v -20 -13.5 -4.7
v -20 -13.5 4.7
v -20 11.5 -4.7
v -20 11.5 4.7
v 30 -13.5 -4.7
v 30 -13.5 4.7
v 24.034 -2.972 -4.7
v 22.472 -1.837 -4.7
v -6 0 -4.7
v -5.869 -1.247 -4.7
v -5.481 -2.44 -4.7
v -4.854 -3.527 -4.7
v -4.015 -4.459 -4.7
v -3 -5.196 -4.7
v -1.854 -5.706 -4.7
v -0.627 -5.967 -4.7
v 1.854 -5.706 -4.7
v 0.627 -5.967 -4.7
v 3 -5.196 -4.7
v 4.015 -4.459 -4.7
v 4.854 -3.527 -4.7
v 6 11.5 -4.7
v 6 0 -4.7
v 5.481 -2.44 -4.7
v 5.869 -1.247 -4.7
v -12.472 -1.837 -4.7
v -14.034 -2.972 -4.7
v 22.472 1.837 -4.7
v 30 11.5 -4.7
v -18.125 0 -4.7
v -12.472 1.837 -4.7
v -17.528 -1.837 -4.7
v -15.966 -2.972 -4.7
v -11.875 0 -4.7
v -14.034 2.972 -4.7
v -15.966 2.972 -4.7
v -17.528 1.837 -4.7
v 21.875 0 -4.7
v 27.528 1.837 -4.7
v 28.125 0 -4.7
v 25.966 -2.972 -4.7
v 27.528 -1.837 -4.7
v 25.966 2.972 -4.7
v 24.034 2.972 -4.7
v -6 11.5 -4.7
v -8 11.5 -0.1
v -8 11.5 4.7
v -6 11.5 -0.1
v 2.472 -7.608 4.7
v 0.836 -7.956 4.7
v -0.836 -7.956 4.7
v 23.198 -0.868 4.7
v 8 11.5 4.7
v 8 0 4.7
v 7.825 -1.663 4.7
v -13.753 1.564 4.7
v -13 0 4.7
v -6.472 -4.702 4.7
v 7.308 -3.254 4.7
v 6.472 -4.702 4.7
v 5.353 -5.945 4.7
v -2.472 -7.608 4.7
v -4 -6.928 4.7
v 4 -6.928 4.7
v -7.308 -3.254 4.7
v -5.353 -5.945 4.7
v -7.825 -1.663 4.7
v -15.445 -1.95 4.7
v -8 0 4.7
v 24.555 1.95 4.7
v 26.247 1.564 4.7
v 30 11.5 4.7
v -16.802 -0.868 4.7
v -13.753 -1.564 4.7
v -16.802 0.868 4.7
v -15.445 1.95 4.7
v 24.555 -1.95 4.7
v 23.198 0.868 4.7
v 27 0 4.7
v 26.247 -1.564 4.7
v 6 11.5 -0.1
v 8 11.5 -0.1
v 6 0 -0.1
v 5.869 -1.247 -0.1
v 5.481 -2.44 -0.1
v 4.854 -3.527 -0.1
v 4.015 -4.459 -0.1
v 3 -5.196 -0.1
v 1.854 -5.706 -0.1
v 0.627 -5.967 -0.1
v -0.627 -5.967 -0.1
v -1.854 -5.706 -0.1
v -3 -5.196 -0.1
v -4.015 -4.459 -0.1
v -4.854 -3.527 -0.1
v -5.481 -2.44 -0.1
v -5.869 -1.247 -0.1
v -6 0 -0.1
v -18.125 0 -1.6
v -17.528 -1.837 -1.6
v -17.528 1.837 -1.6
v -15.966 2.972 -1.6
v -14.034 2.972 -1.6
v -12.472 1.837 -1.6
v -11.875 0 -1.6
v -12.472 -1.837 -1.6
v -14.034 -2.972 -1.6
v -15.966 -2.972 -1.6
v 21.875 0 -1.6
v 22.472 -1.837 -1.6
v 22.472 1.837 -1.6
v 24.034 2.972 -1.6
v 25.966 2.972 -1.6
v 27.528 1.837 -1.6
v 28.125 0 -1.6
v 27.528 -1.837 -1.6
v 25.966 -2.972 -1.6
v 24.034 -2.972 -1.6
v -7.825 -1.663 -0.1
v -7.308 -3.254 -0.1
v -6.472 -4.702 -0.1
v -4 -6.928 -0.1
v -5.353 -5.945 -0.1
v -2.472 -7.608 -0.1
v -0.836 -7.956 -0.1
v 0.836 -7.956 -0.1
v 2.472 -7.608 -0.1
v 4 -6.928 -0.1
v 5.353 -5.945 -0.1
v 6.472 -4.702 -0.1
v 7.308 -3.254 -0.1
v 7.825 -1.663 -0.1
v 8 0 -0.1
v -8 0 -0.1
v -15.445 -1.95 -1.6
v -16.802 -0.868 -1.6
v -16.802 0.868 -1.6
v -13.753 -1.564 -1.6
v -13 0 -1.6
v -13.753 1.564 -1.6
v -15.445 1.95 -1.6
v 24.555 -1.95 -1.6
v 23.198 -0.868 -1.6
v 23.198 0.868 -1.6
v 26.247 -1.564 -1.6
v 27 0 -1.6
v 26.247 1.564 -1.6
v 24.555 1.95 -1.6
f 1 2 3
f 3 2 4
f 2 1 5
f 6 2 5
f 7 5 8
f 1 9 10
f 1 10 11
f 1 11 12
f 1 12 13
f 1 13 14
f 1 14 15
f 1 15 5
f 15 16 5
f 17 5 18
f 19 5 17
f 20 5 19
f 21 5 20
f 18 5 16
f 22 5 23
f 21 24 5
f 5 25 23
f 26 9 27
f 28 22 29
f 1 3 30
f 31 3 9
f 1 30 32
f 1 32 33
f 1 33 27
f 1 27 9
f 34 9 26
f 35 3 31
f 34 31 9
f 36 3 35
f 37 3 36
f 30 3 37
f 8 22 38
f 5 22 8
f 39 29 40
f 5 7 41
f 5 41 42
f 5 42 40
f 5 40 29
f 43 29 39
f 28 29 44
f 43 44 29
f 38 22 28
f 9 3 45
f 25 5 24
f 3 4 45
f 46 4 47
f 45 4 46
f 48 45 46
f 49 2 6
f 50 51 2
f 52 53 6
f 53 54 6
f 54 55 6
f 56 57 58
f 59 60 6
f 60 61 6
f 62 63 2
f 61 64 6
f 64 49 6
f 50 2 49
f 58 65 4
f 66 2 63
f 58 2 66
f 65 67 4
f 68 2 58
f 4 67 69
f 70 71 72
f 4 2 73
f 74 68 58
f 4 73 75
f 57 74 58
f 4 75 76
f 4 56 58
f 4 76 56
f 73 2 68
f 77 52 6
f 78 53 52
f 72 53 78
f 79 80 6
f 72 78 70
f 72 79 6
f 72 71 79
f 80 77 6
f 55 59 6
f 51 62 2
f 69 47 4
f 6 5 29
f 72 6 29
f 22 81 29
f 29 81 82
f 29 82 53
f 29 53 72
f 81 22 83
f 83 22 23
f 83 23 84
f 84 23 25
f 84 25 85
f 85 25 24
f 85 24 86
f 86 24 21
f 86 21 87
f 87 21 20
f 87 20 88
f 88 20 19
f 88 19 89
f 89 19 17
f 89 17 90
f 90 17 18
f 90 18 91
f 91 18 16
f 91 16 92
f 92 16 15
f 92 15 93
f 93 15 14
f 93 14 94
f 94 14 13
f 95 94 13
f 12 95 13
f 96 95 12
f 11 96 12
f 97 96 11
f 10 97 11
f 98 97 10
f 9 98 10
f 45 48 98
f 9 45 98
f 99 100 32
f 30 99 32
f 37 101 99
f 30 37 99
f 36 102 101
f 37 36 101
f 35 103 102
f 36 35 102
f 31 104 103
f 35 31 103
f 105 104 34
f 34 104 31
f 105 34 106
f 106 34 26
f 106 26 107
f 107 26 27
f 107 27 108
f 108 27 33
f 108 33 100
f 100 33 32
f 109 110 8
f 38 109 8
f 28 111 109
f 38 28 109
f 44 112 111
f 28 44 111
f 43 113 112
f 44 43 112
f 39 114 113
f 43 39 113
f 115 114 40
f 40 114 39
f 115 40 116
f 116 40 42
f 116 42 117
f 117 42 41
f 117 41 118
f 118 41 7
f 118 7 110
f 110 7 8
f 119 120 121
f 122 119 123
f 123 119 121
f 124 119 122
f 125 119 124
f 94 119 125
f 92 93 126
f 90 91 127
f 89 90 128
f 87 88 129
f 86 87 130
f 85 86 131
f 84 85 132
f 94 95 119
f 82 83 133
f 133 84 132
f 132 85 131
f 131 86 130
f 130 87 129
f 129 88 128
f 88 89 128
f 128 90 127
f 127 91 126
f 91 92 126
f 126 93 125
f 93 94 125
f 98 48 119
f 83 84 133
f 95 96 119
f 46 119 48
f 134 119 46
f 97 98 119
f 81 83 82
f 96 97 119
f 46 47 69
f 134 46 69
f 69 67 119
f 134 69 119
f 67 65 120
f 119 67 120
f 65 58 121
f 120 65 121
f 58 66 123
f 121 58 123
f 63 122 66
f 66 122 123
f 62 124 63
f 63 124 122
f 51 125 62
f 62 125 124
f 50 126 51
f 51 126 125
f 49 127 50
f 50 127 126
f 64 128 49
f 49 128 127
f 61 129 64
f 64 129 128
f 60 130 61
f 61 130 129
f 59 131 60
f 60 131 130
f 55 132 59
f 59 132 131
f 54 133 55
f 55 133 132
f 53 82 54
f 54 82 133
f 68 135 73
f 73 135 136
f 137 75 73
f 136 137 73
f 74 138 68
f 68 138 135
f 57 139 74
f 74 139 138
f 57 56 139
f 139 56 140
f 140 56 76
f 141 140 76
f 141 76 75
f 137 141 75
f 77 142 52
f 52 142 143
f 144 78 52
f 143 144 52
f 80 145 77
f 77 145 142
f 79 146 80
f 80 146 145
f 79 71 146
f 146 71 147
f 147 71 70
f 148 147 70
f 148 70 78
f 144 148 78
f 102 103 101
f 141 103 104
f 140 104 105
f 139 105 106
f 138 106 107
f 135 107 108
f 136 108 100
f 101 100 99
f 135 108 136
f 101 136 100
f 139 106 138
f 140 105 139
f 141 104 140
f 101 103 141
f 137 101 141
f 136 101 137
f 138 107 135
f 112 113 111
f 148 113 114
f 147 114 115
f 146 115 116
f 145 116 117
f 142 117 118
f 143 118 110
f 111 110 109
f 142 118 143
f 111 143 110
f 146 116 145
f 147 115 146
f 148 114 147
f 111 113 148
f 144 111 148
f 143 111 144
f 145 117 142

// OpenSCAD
// MakerGear hotend mounting block for Prusa i3 compact extruder

blockHeight = 9.4;
retainerHeight = 4.8;

difference() {
  // Block
  translate( [5, -1, 0] ) cube( size = [50, 25, blockHeight], center = true );

  // Mounting holes
  union(){
    translate([25, 0, -11])  cylinder(r=3.125, h=blockHeight);
    translate([-15, 0, -11])  cylinder(r=3.125, h=blockHeight);

    translate([25,0,0])  cylinder(r=2, h=blockHeight+1, center=true);
    translate([-15,0,0])  cylinder(r=2, h=blockHeight+1, center=true);
  }

  // Hotend outer cylinder cutaway
  union(){
    translate( [0, 0, (blockHeight- retainerHeight)-(blockHeight/2)] ) cylinder( h = retainerHeight, r = 8, $fs=.5 );
    translate ([-8, 0, (blockHeight- retainerHeight)-(blockHeight/2)]) cube (size = [16, 12, retainerHeight], center = false );
  }

  // Hotend inner cylinder cutaway
  union(){
    translate( [0, 0, 0] ) cylinder( h = 10.2, r=6, $fs =.5, center = true);
    translate( [0, 6, 0] ) cube ( size = [12, 12, blockHeight+1], center = true );
  }
 }
